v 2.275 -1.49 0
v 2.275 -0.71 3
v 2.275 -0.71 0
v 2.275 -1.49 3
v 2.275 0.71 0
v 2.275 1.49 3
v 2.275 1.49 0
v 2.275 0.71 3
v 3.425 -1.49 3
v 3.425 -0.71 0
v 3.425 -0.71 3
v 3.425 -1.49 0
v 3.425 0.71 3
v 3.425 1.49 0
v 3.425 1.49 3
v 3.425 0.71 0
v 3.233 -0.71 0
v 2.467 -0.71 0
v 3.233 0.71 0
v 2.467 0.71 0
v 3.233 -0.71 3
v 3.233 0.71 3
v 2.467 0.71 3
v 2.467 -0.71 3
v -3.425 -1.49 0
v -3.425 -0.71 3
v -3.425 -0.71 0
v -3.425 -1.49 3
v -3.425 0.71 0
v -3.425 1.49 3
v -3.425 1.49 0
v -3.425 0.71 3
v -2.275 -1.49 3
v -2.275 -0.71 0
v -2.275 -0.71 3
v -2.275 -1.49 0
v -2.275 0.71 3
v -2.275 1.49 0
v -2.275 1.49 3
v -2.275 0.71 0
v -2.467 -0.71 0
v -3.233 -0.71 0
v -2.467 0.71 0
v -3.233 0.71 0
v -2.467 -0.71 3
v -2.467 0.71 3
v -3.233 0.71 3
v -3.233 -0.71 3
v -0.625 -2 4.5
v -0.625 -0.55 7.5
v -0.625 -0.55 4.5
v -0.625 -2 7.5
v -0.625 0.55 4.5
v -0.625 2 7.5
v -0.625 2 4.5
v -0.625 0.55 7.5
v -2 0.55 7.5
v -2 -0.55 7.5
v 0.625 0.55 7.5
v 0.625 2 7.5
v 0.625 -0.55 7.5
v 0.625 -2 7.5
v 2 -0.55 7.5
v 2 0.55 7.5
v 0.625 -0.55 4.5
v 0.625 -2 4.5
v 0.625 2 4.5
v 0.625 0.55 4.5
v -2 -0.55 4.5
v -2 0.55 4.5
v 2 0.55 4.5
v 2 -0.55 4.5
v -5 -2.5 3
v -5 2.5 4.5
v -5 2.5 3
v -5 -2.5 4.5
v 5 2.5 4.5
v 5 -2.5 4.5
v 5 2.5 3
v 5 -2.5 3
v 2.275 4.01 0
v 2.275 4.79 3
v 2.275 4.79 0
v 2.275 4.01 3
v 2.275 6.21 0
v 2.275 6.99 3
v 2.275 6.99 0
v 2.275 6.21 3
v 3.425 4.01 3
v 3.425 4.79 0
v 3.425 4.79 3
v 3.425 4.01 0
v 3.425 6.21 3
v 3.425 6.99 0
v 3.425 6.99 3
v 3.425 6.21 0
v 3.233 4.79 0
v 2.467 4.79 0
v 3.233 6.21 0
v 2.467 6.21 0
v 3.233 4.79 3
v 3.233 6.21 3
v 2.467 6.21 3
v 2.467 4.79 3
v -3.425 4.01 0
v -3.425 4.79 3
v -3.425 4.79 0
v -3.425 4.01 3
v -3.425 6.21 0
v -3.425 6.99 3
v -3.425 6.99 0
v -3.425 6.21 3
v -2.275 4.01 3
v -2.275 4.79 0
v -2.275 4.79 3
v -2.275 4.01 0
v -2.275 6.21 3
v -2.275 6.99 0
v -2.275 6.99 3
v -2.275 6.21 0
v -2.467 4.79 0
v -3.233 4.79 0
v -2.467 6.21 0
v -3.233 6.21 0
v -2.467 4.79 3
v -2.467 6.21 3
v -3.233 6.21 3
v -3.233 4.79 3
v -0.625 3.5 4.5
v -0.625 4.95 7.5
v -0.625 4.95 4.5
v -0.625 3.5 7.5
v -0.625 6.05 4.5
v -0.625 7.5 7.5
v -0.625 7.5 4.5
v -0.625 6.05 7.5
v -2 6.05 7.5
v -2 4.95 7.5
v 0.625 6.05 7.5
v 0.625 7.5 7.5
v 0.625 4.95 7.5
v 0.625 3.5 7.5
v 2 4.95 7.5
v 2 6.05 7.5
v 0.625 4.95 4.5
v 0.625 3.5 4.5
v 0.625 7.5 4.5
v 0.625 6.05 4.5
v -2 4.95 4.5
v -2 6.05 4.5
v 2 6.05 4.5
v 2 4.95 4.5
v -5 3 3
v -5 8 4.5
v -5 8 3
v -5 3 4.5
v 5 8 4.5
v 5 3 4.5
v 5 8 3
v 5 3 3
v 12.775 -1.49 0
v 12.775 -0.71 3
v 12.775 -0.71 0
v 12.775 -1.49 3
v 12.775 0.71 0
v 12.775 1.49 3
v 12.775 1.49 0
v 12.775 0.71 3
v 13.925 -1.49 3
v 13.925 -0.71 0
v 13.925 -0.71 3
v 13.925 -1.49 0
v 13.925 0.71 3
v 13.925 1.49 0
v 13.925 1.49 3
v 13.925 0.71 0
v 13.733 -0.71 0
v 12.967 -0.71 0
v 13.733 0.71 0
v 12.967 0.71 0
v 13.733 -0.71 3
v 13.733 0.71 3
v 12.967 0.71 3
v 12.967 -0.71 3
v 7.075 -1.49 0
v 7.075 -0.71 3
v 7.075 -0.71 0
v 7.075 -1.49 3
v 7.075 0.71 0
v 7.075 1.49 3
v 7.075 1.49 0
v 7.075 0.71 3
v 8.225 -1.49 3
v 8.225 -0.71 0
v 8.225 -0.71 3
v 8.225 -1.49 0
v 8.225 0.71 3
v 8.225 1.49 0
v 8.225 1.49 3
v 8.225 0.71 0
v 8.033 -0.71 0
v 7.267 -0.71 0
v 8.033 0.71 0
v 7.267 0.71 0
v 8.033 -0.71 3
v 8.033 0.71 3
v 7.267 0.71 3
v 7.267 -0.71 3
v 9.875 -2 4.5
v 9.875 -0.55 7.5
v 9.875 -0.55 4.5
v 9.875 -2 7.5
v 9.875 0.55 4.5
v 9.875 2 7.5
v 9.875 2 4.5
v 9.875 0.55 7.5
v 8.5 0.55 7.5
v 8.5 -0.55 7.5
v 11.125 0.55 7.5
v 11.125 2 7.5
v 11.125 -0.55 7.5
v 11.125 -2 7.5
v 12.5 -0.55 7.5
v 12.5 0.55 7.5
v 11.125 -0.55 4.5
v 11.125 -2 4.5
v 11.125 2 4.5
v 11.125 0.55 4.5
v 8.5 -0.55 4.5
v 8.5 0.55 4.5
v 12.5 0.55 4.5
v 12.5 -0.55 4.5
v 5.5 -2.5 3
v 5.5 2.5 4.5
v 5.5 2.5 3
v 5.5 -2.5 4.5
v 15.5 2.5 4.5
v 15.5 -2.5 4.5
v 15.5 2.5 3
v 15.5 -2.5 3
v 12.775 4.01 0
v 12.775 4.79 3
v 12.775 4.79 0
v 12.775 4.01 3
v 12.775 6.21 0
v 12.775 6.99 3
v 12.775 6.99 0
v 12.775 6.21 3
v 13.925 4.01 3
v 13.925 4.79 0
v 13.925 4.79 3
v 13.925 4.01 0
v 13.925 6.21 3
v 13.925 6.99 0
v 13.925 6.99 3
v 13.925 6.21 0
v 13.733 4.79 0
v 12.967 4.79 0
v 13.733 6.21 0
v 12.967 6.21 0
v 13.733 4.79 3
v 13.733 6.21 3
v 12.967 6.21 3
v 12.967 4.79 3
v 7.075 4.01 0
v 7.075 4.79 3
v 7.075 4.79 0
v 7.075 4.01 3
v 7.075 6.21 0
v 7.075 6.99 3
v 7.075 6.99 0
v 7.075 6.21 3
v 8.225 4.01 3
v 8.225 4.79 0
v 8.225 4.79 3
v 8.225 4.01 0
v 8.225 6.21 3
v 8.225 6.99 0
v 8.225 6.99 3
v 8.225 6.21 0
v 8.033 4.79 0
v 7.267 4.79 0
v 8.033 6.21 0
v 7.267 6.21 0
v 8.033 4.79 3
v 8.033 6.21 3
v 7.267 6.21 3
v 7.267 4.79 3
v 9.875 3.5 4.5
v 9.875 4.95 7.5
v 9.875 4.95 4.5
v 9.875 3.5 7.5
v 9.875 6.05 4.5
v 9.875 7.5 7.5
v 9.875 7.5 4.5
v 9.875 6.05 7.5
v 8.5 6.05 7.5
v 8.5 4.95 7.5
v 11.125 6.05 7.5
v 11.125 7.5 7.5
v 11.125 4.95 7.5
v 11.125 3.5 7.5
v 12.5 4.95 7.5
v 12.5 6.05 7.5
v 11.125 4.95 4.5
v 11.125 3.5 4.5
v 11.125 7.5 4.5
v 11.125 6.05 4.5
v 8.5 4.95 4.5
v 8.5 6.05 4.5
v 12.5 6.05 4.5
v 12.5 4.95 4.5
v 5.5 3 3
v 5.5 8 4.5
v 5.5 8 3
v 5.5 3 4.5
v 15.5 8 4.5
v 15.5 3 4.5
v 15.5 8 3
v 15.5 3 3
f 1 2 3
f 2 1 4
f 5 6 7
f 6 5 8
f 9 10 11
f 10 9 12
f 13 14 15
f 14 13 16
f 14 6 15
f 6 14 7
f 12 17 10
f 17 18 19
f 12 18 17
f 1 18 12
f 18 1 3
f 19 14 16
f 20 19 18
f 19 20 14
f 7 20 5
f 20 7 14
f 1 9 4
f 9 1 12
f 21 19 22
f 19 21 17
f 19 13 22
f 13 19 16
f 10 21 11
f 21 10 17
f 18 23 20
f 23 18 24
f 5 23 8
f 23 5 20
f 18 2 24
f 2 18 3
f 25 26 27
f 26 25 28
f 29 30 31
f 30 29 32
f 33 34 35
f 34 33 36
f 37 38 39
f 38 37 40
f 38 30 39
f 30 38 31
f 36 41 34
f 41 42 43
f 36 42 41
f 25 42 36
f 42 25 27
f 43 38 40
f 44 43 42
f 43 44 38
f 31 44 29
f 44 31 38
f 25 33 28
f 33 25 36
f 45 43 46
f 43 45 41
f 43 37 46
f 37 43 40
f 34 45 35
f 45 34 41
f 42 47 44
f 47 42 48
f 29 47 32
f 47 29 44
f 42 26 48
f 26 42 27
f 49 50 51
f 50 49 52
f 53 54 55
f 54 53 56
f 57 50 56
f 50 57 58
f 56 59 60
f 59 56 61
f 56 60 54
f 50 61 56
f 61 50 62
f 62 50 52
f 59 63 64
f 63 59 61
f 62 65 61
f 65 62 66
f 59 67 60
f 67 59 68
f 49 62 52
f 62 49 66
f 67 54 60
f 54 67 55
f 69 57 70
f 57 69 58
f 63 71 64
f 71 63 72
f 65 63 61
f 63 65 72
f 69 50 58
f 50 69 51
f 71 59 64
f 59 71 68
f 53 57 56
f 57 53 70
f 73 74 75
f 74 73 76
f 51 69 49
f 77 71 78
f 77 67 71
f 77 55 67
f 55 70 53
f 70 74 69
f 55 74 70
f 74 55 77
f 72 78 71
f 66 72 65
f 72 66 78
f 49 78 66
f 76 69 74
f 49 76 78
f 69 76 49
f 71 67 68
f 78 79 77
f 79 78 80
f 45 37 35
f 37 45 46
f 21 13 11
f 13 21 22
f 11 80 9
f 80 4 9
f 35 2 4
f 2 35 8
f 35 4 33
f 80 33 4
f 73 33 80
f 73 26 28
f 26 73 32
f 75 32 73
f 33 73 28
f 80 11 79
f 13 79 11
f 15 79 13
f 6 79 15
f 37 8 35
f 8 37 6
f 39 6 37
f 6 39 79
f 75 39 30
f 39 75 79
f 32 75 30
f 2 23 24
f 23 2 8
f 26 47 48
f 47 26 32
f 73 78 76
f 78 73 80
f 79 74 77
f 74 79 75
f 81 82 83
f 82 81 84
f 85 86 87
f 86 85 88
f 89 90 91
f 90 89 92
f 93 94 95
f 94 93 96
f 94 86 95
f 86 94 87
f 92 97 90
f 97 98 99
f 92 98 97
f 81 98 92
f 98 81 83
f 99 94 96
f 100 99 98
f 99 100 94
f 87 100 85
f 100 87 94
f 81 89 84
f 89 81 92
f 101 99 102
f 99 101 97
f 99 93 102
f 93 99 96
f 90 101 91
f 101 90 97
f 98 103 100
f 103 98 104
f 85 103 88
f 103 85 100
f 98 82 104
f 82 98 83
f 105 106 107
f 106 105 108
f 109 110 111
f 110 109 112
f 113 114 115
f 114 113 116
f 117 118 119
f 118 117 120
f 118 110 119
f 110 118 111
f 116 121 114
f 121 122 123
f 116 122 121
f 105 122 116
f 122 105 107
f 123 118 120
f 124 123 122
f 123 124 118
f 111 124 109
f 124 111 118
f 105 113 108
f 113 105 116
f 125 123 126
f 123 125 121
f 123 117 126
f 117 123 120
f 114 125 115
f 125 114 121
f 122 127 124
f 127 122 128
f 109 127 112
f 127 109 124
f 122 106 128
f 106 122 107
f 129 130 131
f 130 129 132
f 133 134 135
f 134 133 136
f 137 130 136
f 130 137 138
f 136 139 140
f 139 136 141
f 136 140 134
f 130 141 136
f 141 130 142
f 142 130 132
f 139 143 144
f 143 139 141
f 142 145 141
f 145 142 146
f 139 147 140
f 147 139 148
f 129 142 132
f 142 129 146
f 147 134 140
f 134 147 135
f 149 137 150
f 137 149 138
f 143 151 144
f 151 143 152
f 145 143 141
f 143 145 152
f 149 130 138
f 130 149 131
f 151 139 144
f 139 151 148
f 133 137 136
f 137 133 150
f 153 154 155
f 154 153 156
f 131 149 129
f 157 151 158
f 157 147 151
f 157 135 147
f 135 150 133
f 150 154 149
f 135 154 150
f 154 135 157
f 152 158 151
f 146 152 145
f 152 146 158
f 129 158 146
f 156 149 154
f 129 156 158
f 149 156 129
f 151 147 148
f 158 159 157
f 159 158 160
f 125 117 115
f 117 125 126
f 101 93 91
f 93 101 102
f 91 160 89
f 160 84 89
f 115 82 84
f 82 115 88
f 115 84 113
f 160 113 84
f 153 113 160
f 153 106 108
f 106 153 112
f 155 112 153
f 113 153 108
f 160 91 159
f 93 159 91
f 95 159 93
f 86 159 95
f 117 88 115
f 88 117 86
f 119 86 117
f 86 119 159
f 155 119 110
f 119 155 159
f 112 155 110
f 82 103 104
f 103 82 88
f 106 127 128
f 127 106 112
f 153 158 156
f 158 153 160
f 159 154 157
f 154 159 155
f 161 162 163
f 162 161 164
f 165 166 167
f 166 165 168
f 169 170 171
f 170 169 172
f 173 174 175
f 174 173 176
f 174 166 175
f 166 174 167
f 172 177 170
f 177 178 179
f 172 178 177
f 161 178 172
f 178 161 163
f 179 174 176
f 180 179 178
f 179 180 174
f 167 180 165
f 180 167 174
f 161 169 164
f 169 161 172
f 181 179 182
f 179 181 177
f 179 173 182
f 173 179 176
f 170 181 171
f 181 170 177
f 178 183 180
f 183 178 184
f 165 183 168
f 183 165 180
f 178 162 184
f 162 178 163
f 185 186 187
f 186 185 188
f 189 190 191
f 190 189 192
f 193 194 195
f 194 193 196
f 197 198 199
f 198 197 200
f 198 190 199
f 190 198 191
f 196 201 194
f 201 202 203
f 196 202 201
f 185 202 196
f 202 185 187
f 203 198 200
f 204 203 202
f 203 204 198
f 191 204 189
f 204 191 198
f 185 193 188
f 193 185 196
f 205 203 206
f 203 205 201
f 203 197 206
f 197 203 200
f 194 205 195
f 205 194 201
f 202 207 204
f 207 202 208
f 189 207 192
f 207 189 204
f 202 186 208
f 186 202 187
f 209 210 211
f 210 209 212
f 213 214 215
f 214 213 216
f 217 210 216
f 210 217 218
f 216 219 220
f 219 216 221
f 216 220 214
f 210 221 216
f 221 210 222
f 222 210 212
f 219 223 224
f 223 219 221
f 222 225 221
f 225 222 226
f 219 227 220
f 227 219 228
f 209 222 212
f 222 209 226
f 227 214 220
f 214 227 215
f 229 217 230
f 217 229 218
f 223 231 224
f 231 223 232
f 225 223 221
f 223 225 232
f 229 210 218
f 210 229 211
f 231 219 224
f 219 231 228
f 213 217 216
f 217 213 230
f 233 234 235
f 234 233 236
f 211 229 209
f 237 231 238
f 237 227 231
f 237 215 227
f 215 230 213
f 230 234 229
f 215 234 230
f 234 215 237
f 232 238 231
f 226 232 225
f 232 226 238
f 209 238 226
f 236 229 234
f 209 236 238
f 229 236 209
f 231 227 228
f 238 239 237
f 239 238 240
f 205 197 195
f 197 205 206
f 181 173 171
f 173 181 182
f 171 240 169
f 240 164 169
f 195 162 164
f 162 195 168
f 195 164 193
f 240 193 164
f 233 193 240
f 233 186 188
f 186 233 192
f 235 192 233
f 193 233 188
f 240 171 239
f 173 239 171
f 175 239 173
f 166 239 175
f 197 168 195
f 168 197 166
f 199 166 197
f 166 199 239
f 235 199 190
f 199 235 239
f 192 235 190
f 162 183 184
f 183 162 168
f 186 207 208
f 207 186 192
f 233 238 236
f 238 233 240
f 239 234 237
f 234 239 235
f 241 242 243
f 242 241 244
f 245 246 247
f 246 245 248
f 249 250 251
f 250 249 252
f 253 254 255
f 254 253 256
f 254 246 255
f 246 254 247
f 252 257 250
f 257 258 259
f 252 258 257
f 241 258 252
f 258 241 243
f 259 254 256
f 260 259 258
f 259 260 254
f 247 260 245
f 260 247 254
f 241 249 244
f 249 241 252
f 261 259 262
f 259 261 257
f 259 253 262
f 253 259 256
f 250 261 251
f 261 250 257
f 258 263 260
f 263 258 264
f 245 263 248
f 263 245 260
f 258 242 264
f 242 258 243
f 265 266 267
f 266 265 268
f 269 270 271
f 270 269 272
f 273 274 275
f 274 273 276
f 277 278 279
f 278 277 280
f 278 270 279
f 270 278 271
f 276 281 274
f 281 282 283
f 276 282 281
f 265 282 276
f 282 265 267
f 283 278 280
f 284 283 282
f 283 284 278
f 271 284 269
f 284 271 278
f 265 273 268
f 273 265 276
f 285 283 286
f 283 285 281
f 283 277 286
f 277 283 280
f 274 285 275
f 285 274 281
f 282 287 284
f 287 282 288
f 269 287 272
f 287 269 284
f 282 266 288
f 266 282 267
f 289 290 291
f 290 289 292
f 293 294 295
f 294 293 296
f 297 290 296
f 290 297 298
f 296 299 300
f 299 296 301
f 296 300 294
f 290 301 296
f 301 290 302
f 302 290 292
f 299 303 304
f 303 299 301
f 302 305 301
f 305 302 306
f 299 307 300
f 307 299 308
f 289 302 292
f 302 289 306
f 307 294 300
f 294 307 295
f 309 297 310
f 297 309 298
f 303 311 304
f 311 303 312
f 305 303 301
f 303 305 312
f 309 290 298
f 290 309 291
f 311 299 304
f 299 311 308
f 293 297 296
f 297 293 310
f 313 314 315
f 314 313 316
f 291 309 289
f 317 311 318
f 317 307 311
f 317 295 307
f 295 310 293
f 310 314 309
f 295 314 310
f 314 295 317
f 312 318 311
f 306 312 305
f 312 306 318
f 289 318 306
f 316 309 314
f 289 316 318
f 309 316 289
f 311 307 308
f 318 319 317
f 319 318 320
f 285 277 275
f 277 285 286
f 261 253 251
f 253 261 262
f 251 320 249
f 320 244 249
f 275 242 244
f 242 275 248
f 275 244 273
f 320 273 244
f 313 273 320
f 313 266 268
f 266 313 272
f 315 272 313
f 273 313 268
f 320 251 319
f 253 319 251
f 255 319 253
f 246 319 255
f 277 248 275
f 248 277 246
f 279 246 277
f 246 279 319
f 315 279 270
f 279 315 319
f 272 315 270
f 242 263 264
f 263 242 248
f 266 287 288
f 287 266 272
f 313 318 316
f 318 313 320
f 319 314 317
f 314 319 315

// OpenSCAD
$fs = 0.10;

// Choc 部分

stem_size = [1.15, 2.98, 3.50];
stem_diff = [stem_size[0], stem_size[1] / 2.10, stem_size[2] + 1.00];
stem_offset = [5.70 / 2, 0, stem_size[2] / 2];
choc_stem_height = 3.00;

module stem_one_side() {
    difference() {
        cube(stem_size, true);
        translate([stem_size[0] * 2.50 / 3, 0, 0])
            cube(stem_diff, true);
        translate([stem_size[0] * -2.50 / 3, 0, 0])
            cube(stem_diff, true);
    }
}

module choc_stems() {
    translate(stem_offset)
        stem_one_side();
    translate([-1 * stem_offset[0], stem_offset[1], stem_offset[2]])
        stem_one_side();
}

// 接続部分（板）
board_size = [10.00, 5.00, 1.50];

module plate() {
    translate([0, 0, (board_size[2] / 2) + 3.00])
        cube(board_size, true);
}

// 十字部分

stem_cross_length = 4.0;
stem_cross_h      = 1.25;
stem_cross_v      = 1.10;
stem_height       = 3.0 + (board_size[2] / 2);

module mx_stem() {
    translate([0, 0, (stem_height / 2) + choc_stem_height + (board_size[2] / 2)])
        cube([stem_cross_h, stem_cross_length, stem_height], true);
    translate([0, 0,  (stem_height / 2) + choc_stem_height + (board_size[2] / 2)])
        cube([stem_cross_length, stem_cross_v, stem_height], true);
}

// 全部くっつけて、アダプタ
module choc_to_mx() {
    choc_stems();
    plate();
    mx_stem();
}

// 複製
//mirror([0, 0, 1])
    for (x = [0, 1])
        for (y = [0, 1])
            translate([(board_size[0] + 0.5) * x, (board_size[1] + 0.5) * y, 0])
                choc_to_mx();
